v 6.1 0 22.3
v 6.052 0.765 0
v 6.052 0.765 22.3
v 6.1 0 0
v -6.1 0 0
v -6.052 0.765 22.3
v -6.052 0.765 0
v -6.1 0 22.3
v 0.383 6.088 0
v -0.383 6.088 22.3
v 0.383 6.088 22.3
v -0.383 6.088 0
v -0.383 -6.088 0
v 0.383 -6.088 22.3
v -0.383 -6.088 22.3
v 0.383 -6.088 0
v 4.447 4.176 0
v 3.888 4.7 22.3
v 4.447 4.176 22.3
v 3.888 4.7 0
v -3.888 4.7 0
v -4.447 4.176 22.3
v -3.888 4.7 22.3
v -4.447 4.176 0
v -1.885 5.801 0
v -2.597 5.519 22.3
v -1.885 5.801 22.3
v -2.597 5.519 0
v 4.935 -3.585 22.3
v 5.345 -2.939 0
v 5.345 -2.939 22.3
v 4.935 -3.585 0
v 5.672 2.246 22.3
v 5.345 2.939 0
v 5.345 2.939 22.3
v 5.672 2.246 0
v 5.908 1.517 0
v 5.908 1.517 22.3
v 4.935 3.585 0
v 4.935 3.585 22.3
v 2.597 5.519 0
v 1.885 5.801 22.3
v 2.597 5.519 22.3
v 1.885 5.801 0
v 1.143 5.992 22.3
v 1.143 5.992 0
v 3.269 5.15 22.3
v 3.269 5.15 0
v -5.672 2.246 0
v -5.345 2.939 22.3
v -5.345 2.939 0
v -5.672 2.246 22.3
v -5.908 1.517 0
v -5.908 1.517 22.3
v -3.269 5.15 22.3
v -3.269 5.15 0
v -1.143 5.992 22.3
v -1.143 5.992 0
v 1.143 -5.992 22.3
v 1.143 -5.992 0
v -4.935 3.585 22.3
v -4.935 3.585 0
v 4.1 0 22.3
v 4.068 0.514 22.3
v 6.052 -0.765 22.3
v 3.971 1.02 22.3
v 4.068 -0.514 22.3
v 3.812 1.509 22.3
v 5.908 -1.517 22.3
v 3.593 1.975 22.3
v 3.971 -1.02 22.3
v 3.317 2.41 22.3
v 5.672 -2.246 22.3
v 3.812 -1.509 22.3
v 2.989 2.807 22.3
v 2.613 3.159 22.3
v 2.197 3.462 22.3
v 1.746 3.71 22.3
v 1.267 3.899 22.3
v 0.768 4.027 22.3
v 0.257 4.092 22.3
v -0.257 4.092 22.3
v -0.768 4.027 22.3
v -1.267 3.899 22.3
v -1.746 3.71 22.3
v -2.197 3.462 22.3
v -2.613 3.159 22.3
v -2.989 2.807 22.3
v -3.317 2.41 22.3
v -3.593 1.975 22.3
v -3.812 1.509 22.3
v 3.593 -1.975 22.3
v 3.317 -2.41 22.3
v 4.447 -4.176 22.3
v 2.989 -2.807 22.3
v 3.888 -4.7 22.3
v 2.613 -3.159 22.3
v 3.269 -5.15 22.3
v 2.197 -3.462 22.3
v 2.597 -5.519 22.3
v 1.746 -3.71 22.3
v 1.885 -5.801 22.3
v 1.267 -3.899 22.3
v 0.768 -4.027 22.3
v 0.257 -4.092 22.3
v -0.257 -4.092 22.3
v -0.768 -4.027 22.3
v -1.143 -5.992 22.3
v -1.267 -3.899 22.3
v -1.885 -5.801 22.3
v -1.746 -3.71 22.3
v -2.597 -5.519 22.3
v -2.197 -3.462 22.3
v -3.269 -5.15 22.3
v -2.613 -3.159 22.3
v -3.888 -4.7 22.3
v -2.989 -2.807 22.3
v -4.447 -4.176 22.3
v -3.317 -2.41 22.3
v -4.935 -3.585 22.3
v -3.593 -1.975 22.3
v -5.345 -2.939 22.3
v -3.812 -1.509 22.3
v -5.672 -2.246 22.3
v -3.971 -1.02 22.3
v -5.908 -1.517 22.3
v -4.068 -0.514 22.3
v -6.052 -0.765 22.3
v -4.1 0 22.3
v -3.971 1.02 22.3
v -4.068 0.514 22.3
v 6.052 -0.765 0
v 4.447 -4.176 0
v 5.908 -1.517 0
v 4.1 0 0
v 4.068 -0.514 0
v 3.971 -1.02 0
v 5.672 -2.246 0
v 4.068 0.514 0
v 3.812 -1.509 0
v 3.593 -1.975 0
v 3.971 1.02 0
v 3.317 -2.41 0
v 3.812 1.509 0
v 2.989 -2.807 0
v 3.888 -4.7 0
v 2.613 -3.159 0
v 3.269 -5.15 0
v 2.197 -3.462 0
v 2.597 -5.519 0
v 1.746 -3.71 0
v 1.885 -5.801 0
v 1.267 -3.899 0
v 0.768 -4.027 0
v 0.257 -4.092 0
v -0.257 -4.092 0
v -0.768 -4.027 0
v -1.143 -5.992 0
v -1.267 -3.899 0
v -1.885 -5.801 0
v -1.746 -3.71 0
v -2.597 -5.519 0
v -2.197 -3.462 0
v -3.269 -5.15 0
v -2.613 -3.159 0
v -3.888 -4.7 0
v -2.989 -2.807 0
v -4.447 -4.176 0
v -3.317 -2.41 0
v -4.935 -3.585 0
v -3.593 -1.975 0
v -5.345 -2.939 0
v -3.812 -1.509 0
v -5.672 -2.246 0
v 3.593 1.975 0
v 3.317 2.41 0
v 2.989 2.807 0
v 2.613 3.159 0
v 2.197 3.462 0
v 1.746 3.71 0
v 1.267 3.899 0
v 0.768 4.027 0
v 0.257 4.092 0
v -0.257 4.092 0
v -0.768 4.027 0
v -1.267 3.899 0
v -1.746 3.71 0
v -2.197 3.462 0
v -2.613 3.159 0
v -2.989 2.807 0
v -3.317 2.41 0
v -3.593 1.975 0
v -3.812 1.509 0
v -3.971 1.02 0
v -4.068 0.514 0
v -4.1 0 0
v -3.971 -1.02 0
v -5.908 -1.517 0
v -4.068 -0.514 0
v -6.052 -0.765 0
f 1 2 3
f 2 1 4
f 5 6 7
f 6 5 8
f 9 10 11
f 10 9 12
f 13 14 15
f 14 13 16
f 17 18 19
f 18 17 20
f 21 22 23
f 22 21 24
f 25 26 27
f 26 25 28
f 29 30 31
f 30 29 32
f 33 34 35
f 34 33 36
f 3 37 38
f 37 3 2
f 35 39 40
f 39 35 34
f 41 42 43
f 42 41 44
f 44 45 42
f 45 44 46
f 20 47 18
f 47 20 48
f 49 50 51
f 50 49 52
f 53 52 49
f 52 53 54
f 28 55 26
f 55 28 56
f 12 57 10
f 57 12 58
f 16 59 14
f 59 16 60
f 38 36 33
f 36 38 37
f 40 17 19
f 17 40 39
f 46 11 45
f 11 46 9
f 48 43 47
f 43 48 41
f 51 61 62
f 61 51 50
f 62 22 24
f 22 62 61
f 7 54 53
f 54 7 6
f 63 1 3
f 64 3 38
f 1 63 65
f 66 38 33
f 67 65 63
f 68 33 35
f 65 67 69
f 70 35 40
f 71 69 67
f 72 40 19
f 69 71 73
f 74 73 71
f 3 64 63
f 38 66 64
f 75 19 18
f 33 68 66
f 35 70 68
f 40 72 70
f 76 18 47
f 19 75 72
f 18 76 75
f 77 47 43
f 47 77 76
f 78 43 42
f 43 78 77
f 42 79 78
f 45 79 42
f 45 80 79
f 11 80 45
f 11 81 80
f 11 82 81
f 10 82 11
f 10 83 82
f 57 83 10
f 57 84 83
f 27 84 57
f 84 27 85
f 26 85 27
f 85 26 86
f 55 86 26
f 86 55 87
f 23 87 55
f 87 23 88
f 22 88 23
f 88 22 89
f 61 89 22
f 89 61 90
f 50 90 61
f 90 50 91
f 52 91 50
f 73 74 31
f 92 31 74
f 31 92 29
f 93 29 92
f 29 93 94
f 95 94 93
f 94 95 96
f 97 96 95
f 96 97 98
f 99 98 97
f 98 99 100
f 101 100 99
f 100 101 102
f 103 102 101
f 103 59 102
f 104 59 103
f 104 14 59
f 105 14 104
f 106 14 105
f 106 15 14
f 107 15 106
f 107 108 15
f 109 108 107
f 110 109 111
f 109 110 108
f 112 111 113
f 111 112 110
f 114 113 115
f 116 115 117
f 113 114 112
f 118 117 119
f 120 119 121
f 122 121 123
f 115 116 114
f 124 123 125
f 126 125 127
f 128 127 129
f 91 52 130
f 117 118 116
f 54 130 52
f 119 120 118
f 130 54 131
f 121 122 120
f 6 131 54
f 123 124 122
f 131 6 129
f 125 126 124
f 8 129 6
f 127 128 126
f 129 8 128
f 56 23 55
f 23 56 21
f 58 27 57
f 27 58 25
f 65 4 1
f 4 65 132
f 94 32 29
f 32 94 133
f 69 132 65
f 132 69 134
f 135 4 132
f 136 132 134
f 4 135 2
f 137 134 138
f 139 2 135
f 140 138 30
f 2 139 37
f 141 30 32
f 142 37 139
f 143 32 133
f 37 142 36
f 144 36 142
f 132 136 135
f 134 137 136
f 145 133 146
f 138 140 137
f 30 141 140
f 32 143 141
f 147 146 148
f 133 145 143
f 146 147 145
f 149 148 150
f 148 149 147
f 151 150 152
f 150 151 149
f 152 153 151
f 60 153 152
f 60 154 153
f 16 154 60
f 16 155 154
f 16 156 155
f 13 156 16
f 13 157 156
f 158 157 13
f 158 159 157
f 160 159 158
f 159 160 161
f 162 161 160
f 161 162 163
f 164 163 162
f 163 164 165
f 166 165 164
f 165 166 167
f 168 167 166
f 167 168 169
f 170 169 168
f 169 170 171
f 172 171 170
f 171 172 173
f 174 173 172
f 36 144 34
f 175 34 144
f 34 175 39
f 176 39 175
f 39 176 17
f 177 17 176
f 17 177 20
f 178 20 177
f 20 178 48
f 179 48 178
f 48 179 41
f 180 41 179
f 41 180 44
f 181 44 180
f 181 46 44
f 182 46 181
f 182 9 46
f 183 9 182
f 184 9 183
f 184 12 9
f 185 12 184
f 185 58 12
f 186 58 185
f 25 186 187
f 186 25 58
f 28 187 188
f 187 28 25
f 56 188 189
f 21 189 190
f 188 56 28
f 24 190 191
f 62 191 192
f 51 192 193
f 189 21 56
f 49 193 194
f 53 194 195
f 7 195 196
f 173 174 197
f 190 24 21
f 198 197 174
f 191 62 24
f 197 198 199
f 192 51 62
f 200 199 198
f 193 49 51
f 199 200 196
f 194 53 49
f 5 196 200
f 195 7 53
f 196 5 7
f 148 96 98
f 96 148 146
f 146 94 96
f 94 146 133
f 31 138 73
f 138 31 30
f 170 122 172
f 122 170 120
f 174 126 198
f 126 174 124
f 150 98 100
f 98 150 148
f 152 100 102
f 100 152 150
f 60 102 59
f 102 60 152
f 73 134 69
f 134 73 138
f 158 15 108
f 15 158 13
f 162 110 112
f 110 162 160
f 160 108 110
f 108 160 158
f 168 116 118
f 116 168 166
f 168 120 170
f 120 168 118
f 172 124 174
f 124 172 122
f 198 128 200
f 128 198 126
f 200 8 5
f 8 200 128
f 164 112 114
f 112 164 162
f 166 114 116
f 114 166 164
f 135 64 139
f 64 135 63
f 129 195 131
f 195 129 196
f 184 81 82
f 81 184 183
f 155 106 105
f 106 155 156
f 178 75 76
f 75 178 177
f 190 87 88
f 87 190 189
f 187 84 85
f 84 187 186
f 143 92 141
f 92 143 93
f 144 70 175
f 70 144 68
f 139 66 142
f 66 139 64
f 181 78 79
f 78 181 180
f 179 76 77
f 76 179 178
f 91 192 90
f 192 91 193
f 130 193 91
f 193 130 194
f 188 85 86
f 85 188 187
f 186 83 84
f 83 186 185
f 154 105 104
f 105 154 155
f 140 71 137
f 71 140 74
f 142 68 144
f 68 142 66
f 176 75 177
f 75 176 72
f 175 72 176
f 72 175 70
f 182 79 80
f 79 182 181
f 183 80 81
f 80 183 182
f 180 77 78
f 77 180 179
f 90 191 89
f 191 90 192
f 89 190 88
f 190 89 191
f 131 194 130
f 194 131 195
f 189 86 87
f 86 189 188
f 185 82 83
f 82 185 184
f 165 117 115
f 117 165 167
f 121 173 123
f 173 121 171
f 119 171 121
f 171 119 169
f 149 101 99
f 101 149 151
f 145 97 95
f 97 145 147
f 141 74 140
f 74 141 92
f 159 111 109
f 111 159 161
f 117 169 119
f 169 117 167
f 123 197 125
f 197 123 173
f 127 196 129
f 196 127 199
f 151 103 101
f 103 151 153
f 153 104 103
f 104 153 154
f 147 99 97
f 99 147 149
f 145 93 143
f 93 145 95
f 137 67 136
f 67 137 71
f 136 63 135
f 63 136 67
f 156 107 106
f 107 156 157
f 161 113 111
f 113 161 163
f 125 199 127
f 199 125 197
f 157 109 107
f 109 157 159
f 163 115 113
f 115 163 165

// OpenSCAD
// file: ../parameters.scad
maximum_printable_size = 150;

layer_thickness = 0.3;
global_clearance = 0.5;


//Screw diameter and nut for M10 [mm]
M10_screw_diameter = 10.4;
M10_head_height = 10;
M10_head_diameter = 16+0.5;
M10_nut_height = 10.5;
M10_nut_diameter = 25.5;
M10_nut_pocket = 22.3;

//Screw diameter for M8 [mm]
M8_screw_diameter = 8.6;
M8_head_height = 8;
M8_head_diameter = 13.5;
M8_nut_height = 7.5;
M8_square_nut_thin_height = 4.5;
M8_nut_diameter = 14.4 + 0.5;
M8_nut_pocket = 13 + 0.5;
M8_washer_diameter = 16;
M8_washer_thickness = 1.5;


//Screw diameter and nut for M6 [mm]
M6_screw_diameter=6.5;
M6_head_diameter = 10+0.5;
M6_head_height = 6;
M6_nut_height = 4.9;
M6_nut_diameter = 11.8;
M6_nut_pocket = 10.4;
M6_square_nut_height = 3;
M6_square_nut_diameter = 10;
M6_washer_thickness = 1.6;

//Screw diameter and nut for M5 [mm]
M5_screw_diameter=5.5;
M5_head_height = 5;
M5_head_diameter = 13+0.5;
M5_nut_height = 4.5;
M5_nut_diameter = 9.4;
M5_nut_pocket = 8.4;

//Screw diameter and nut for M4 [mm]
M4_screw_diameter=4.5;
M4_screw_head_height = 4;
M4_nut_height = 3.2;
M4_nut_diameter = 8.4;
M4_nut_pocket = 7.5;

//Screw diameter and nut for M3 [mm]
M3_screw_diameter = 3.2;
M3_nut_height = 2.7;
M3_nut_diameter = 6.6;
M3_nut_pocket = 5.6;
M3_screw_head_height = 3;

//Screw diameter and nut for M2,5 [mm]
M2_5_screw_diameter = 2.7;
M2_5_nut_height = 2.3;
M2_5_nut_diameter = 6;
M2_5_nut_pocket = 5.5;

// kulove lozisko

bearing_efsm_08_h = 33+1;
bearing_efsm_08_m = 22;
bearing_efsm_08_db = 18;
bearing_efsm_08_ag = 10.5;
bearing_efsm_08_n = M4_screw_diameter;
bearing_efsm_08_a1 = 5.5;
bearing_efsm_08_d = 8.25;
bearing_efsm_08_B = 8; // ball height

bearing_efsm_10_h = 38+1;
bearing_efsm_10_m = 26;
bearing_efsm_10_db = 21.9;
bearing_efsm_10_ag = 12+0.2;
bearing_efsm_10_n = M5_screw_diameter;
bearing_efsm_10_a1 = 6.5;
bearing_efsm_10_d = 10.25;


bearing_efsm_12_width = 40+1;
bearing_efsm_12_h = bearing_efsm_12_width;
bearing_efsm_12_boltd = 28/2; // polovina vzdalenosti mezi srouby
bearing_efsm_12_m = bearing_efsm_12_boltd*2;
bearing_efsm_12_db = 25;
bearing_efsm_12_ag = 13;
bearing_efsm_12_a1 = 7;
bearing_efsm_12_n = M5_screw_diameter;
bearing_efsm_12_d = 12.15;
bearing_efsm_12_B = 10; // ball height
bearing_efsm_space = 1;

bearing_efsm_17_width = 54+1;
bearing_efsm_17_h = bearing_efsm_17_width;
bearing_efsm_17_boltd = 38/2; // polovina vzdalenosti mezi srouby
bearing_efsm_17_m = bearing_efsm_17_boltd*2;
bearing_efsm_17_db = 35;
bearing_efsm_17_ag = 18;
bearing_efsm_17_n = M6_screw_diameter;
bearing_efsm_17_a1 = 10;
bearing_efsm_17_B = 17; // ball height

//limcove lozisko
bearing_EFOM_10_L=26; //celkova sirka zakladny
bearing_EFOM_10_d1=10.3;//diametr otvoru real=10 mm
bearing_EFOM_10_dB=22;//diametr vystupku pro ulozeni lozika
bearing_EFOM_10_H=52;//celková delka zakladny
bearing_EFOM_10_J=36;// hole pitch
bearing_EFOM_10_A1=6.5;//vyska pouzdra
bearing_EFOM_10_Ag=12;//celkova vyska
bearing_EFOM_10_N1=5;//sirka otvoru pro sroub
bearing_EFOM_10_N2=8;//delka otvoru pro sroub
bearing_EFOM_10_m=36;//roztec der pro sroub
bearing_EFOM_10_h=9;//vyska lozika


608_bearing_outer_diameter = 22.3;
608_bearing_inner_diameter = 16;
608_bearing_thickness = 7.1;


// 20 KG servo parameters

servo_20kg_axis_offset = 9.375; // jak je osa mimo stredu
servo_20kg_body_x = 42;
servo_20kg_body_y = 21;
servo_20kg_body_z = 40;
servo_20kg_thread_x = 49/2;
servo_20kg_thread_y = 10/2;
servo_20kg_body_below = 10; // jak hluboko je tělo serva pod drzaky na srouby
servo_20kg_below = 25.8; // jak hluboko je páka serva pod drzaky na srouby

servo_20kg_bolt_d = 2.5+0.3;
servo_20kg_nut_d = 5+0.3;


//strain gauge
strain_gauge_width = 12.7;
strain_gauge_length = 75.1;
strain_gauge_screw_distance = 10;

//ALU profile
ALU_profile_width = 30.5;
ALU_profile_holder_wall_thickness = 3;
ALU_profile_groove_width = 8;

//pillow block bearing
//https://www.igus.eu/product/372
//Part no. KSTM-08
KSTM08_screws_distance = 33;         //m
KSTM08_screws_holes_diameter = 4.5;  //d2
KSTM08_flange_thickness = 6;         //h3
KSTM08_case_width = 9;               //C1
KSTM08_case_length = 47;             //a
KSTM08_ball_width = 12;              //B
KSTM08_ball_hole_diameter = 7.85;    //d1


//ložiska pro malý rotor
bearing_outer_diameter = 10.2;    // Rozměr B1 v nákresu s přídavkem na toleranci otvoru
bearing_thickness = 4;        // Rozměr B2 v nákresu
//bearing_shaft_length = 19.5;    // Rozměr B3 v nákresu, Originalni hodnota 19.5
bearing_shaft_length = 20;    // Rozměr B3 v nákresu


//parametry víčka s telemetrickou anténou
S01_sila_materialu=1.2;
S01_vyska_horni_zavit=10;
S01_hloubka_zavitu=4;
S01_prumer_vnitrni=50;
LO_spodni_prumer=17.2;
LO_vyska_bez_krytu=15;
S01_tolerance_zavit=1.5;
R01_vyska_prekryti_statoru=10;

g3_0_cone1 = 70;
g3_0_srcew_dist = 55;



// scale parameters
base_length = 500;
mid_base_width = 500;
mid_base_height = 200;
mid_base_length = 500;
mid_base_x_offset = 50;
base_mid_base_hinge_offset = 50;
tower_height = 185;
tower_angle = atan((mid_base_width/2-ALU_profile_width-10)/tower_height);
tower_arm_length = tower_height/cos(tower_angle);
tower_drag_z_offset = 22;
electro_box_length = 225;
electro_box_width = 165;
electro_box_height = 51.5;

// calibration device parameters
calibration_arm_x_offset = 140;
calibration_arm_y_offset = 50;
// main file
include <../parameters.scad>

module 888_5010() {
    difference() {
        cylinder(d=8+0.2+4, h=ALU_profile_width+ALU_profile_holder_wall_thickness*2-608_bearing_thickness*2, $fn=50);
        
        translate([0, 0, -ALU_profile_holder_wall_thickness])
        cylinder(d=8+0.2, h=ALU_profile_width+ALU_profile_holder_wall_thickness*4, $fn=50);
    }
}

888_5010();
